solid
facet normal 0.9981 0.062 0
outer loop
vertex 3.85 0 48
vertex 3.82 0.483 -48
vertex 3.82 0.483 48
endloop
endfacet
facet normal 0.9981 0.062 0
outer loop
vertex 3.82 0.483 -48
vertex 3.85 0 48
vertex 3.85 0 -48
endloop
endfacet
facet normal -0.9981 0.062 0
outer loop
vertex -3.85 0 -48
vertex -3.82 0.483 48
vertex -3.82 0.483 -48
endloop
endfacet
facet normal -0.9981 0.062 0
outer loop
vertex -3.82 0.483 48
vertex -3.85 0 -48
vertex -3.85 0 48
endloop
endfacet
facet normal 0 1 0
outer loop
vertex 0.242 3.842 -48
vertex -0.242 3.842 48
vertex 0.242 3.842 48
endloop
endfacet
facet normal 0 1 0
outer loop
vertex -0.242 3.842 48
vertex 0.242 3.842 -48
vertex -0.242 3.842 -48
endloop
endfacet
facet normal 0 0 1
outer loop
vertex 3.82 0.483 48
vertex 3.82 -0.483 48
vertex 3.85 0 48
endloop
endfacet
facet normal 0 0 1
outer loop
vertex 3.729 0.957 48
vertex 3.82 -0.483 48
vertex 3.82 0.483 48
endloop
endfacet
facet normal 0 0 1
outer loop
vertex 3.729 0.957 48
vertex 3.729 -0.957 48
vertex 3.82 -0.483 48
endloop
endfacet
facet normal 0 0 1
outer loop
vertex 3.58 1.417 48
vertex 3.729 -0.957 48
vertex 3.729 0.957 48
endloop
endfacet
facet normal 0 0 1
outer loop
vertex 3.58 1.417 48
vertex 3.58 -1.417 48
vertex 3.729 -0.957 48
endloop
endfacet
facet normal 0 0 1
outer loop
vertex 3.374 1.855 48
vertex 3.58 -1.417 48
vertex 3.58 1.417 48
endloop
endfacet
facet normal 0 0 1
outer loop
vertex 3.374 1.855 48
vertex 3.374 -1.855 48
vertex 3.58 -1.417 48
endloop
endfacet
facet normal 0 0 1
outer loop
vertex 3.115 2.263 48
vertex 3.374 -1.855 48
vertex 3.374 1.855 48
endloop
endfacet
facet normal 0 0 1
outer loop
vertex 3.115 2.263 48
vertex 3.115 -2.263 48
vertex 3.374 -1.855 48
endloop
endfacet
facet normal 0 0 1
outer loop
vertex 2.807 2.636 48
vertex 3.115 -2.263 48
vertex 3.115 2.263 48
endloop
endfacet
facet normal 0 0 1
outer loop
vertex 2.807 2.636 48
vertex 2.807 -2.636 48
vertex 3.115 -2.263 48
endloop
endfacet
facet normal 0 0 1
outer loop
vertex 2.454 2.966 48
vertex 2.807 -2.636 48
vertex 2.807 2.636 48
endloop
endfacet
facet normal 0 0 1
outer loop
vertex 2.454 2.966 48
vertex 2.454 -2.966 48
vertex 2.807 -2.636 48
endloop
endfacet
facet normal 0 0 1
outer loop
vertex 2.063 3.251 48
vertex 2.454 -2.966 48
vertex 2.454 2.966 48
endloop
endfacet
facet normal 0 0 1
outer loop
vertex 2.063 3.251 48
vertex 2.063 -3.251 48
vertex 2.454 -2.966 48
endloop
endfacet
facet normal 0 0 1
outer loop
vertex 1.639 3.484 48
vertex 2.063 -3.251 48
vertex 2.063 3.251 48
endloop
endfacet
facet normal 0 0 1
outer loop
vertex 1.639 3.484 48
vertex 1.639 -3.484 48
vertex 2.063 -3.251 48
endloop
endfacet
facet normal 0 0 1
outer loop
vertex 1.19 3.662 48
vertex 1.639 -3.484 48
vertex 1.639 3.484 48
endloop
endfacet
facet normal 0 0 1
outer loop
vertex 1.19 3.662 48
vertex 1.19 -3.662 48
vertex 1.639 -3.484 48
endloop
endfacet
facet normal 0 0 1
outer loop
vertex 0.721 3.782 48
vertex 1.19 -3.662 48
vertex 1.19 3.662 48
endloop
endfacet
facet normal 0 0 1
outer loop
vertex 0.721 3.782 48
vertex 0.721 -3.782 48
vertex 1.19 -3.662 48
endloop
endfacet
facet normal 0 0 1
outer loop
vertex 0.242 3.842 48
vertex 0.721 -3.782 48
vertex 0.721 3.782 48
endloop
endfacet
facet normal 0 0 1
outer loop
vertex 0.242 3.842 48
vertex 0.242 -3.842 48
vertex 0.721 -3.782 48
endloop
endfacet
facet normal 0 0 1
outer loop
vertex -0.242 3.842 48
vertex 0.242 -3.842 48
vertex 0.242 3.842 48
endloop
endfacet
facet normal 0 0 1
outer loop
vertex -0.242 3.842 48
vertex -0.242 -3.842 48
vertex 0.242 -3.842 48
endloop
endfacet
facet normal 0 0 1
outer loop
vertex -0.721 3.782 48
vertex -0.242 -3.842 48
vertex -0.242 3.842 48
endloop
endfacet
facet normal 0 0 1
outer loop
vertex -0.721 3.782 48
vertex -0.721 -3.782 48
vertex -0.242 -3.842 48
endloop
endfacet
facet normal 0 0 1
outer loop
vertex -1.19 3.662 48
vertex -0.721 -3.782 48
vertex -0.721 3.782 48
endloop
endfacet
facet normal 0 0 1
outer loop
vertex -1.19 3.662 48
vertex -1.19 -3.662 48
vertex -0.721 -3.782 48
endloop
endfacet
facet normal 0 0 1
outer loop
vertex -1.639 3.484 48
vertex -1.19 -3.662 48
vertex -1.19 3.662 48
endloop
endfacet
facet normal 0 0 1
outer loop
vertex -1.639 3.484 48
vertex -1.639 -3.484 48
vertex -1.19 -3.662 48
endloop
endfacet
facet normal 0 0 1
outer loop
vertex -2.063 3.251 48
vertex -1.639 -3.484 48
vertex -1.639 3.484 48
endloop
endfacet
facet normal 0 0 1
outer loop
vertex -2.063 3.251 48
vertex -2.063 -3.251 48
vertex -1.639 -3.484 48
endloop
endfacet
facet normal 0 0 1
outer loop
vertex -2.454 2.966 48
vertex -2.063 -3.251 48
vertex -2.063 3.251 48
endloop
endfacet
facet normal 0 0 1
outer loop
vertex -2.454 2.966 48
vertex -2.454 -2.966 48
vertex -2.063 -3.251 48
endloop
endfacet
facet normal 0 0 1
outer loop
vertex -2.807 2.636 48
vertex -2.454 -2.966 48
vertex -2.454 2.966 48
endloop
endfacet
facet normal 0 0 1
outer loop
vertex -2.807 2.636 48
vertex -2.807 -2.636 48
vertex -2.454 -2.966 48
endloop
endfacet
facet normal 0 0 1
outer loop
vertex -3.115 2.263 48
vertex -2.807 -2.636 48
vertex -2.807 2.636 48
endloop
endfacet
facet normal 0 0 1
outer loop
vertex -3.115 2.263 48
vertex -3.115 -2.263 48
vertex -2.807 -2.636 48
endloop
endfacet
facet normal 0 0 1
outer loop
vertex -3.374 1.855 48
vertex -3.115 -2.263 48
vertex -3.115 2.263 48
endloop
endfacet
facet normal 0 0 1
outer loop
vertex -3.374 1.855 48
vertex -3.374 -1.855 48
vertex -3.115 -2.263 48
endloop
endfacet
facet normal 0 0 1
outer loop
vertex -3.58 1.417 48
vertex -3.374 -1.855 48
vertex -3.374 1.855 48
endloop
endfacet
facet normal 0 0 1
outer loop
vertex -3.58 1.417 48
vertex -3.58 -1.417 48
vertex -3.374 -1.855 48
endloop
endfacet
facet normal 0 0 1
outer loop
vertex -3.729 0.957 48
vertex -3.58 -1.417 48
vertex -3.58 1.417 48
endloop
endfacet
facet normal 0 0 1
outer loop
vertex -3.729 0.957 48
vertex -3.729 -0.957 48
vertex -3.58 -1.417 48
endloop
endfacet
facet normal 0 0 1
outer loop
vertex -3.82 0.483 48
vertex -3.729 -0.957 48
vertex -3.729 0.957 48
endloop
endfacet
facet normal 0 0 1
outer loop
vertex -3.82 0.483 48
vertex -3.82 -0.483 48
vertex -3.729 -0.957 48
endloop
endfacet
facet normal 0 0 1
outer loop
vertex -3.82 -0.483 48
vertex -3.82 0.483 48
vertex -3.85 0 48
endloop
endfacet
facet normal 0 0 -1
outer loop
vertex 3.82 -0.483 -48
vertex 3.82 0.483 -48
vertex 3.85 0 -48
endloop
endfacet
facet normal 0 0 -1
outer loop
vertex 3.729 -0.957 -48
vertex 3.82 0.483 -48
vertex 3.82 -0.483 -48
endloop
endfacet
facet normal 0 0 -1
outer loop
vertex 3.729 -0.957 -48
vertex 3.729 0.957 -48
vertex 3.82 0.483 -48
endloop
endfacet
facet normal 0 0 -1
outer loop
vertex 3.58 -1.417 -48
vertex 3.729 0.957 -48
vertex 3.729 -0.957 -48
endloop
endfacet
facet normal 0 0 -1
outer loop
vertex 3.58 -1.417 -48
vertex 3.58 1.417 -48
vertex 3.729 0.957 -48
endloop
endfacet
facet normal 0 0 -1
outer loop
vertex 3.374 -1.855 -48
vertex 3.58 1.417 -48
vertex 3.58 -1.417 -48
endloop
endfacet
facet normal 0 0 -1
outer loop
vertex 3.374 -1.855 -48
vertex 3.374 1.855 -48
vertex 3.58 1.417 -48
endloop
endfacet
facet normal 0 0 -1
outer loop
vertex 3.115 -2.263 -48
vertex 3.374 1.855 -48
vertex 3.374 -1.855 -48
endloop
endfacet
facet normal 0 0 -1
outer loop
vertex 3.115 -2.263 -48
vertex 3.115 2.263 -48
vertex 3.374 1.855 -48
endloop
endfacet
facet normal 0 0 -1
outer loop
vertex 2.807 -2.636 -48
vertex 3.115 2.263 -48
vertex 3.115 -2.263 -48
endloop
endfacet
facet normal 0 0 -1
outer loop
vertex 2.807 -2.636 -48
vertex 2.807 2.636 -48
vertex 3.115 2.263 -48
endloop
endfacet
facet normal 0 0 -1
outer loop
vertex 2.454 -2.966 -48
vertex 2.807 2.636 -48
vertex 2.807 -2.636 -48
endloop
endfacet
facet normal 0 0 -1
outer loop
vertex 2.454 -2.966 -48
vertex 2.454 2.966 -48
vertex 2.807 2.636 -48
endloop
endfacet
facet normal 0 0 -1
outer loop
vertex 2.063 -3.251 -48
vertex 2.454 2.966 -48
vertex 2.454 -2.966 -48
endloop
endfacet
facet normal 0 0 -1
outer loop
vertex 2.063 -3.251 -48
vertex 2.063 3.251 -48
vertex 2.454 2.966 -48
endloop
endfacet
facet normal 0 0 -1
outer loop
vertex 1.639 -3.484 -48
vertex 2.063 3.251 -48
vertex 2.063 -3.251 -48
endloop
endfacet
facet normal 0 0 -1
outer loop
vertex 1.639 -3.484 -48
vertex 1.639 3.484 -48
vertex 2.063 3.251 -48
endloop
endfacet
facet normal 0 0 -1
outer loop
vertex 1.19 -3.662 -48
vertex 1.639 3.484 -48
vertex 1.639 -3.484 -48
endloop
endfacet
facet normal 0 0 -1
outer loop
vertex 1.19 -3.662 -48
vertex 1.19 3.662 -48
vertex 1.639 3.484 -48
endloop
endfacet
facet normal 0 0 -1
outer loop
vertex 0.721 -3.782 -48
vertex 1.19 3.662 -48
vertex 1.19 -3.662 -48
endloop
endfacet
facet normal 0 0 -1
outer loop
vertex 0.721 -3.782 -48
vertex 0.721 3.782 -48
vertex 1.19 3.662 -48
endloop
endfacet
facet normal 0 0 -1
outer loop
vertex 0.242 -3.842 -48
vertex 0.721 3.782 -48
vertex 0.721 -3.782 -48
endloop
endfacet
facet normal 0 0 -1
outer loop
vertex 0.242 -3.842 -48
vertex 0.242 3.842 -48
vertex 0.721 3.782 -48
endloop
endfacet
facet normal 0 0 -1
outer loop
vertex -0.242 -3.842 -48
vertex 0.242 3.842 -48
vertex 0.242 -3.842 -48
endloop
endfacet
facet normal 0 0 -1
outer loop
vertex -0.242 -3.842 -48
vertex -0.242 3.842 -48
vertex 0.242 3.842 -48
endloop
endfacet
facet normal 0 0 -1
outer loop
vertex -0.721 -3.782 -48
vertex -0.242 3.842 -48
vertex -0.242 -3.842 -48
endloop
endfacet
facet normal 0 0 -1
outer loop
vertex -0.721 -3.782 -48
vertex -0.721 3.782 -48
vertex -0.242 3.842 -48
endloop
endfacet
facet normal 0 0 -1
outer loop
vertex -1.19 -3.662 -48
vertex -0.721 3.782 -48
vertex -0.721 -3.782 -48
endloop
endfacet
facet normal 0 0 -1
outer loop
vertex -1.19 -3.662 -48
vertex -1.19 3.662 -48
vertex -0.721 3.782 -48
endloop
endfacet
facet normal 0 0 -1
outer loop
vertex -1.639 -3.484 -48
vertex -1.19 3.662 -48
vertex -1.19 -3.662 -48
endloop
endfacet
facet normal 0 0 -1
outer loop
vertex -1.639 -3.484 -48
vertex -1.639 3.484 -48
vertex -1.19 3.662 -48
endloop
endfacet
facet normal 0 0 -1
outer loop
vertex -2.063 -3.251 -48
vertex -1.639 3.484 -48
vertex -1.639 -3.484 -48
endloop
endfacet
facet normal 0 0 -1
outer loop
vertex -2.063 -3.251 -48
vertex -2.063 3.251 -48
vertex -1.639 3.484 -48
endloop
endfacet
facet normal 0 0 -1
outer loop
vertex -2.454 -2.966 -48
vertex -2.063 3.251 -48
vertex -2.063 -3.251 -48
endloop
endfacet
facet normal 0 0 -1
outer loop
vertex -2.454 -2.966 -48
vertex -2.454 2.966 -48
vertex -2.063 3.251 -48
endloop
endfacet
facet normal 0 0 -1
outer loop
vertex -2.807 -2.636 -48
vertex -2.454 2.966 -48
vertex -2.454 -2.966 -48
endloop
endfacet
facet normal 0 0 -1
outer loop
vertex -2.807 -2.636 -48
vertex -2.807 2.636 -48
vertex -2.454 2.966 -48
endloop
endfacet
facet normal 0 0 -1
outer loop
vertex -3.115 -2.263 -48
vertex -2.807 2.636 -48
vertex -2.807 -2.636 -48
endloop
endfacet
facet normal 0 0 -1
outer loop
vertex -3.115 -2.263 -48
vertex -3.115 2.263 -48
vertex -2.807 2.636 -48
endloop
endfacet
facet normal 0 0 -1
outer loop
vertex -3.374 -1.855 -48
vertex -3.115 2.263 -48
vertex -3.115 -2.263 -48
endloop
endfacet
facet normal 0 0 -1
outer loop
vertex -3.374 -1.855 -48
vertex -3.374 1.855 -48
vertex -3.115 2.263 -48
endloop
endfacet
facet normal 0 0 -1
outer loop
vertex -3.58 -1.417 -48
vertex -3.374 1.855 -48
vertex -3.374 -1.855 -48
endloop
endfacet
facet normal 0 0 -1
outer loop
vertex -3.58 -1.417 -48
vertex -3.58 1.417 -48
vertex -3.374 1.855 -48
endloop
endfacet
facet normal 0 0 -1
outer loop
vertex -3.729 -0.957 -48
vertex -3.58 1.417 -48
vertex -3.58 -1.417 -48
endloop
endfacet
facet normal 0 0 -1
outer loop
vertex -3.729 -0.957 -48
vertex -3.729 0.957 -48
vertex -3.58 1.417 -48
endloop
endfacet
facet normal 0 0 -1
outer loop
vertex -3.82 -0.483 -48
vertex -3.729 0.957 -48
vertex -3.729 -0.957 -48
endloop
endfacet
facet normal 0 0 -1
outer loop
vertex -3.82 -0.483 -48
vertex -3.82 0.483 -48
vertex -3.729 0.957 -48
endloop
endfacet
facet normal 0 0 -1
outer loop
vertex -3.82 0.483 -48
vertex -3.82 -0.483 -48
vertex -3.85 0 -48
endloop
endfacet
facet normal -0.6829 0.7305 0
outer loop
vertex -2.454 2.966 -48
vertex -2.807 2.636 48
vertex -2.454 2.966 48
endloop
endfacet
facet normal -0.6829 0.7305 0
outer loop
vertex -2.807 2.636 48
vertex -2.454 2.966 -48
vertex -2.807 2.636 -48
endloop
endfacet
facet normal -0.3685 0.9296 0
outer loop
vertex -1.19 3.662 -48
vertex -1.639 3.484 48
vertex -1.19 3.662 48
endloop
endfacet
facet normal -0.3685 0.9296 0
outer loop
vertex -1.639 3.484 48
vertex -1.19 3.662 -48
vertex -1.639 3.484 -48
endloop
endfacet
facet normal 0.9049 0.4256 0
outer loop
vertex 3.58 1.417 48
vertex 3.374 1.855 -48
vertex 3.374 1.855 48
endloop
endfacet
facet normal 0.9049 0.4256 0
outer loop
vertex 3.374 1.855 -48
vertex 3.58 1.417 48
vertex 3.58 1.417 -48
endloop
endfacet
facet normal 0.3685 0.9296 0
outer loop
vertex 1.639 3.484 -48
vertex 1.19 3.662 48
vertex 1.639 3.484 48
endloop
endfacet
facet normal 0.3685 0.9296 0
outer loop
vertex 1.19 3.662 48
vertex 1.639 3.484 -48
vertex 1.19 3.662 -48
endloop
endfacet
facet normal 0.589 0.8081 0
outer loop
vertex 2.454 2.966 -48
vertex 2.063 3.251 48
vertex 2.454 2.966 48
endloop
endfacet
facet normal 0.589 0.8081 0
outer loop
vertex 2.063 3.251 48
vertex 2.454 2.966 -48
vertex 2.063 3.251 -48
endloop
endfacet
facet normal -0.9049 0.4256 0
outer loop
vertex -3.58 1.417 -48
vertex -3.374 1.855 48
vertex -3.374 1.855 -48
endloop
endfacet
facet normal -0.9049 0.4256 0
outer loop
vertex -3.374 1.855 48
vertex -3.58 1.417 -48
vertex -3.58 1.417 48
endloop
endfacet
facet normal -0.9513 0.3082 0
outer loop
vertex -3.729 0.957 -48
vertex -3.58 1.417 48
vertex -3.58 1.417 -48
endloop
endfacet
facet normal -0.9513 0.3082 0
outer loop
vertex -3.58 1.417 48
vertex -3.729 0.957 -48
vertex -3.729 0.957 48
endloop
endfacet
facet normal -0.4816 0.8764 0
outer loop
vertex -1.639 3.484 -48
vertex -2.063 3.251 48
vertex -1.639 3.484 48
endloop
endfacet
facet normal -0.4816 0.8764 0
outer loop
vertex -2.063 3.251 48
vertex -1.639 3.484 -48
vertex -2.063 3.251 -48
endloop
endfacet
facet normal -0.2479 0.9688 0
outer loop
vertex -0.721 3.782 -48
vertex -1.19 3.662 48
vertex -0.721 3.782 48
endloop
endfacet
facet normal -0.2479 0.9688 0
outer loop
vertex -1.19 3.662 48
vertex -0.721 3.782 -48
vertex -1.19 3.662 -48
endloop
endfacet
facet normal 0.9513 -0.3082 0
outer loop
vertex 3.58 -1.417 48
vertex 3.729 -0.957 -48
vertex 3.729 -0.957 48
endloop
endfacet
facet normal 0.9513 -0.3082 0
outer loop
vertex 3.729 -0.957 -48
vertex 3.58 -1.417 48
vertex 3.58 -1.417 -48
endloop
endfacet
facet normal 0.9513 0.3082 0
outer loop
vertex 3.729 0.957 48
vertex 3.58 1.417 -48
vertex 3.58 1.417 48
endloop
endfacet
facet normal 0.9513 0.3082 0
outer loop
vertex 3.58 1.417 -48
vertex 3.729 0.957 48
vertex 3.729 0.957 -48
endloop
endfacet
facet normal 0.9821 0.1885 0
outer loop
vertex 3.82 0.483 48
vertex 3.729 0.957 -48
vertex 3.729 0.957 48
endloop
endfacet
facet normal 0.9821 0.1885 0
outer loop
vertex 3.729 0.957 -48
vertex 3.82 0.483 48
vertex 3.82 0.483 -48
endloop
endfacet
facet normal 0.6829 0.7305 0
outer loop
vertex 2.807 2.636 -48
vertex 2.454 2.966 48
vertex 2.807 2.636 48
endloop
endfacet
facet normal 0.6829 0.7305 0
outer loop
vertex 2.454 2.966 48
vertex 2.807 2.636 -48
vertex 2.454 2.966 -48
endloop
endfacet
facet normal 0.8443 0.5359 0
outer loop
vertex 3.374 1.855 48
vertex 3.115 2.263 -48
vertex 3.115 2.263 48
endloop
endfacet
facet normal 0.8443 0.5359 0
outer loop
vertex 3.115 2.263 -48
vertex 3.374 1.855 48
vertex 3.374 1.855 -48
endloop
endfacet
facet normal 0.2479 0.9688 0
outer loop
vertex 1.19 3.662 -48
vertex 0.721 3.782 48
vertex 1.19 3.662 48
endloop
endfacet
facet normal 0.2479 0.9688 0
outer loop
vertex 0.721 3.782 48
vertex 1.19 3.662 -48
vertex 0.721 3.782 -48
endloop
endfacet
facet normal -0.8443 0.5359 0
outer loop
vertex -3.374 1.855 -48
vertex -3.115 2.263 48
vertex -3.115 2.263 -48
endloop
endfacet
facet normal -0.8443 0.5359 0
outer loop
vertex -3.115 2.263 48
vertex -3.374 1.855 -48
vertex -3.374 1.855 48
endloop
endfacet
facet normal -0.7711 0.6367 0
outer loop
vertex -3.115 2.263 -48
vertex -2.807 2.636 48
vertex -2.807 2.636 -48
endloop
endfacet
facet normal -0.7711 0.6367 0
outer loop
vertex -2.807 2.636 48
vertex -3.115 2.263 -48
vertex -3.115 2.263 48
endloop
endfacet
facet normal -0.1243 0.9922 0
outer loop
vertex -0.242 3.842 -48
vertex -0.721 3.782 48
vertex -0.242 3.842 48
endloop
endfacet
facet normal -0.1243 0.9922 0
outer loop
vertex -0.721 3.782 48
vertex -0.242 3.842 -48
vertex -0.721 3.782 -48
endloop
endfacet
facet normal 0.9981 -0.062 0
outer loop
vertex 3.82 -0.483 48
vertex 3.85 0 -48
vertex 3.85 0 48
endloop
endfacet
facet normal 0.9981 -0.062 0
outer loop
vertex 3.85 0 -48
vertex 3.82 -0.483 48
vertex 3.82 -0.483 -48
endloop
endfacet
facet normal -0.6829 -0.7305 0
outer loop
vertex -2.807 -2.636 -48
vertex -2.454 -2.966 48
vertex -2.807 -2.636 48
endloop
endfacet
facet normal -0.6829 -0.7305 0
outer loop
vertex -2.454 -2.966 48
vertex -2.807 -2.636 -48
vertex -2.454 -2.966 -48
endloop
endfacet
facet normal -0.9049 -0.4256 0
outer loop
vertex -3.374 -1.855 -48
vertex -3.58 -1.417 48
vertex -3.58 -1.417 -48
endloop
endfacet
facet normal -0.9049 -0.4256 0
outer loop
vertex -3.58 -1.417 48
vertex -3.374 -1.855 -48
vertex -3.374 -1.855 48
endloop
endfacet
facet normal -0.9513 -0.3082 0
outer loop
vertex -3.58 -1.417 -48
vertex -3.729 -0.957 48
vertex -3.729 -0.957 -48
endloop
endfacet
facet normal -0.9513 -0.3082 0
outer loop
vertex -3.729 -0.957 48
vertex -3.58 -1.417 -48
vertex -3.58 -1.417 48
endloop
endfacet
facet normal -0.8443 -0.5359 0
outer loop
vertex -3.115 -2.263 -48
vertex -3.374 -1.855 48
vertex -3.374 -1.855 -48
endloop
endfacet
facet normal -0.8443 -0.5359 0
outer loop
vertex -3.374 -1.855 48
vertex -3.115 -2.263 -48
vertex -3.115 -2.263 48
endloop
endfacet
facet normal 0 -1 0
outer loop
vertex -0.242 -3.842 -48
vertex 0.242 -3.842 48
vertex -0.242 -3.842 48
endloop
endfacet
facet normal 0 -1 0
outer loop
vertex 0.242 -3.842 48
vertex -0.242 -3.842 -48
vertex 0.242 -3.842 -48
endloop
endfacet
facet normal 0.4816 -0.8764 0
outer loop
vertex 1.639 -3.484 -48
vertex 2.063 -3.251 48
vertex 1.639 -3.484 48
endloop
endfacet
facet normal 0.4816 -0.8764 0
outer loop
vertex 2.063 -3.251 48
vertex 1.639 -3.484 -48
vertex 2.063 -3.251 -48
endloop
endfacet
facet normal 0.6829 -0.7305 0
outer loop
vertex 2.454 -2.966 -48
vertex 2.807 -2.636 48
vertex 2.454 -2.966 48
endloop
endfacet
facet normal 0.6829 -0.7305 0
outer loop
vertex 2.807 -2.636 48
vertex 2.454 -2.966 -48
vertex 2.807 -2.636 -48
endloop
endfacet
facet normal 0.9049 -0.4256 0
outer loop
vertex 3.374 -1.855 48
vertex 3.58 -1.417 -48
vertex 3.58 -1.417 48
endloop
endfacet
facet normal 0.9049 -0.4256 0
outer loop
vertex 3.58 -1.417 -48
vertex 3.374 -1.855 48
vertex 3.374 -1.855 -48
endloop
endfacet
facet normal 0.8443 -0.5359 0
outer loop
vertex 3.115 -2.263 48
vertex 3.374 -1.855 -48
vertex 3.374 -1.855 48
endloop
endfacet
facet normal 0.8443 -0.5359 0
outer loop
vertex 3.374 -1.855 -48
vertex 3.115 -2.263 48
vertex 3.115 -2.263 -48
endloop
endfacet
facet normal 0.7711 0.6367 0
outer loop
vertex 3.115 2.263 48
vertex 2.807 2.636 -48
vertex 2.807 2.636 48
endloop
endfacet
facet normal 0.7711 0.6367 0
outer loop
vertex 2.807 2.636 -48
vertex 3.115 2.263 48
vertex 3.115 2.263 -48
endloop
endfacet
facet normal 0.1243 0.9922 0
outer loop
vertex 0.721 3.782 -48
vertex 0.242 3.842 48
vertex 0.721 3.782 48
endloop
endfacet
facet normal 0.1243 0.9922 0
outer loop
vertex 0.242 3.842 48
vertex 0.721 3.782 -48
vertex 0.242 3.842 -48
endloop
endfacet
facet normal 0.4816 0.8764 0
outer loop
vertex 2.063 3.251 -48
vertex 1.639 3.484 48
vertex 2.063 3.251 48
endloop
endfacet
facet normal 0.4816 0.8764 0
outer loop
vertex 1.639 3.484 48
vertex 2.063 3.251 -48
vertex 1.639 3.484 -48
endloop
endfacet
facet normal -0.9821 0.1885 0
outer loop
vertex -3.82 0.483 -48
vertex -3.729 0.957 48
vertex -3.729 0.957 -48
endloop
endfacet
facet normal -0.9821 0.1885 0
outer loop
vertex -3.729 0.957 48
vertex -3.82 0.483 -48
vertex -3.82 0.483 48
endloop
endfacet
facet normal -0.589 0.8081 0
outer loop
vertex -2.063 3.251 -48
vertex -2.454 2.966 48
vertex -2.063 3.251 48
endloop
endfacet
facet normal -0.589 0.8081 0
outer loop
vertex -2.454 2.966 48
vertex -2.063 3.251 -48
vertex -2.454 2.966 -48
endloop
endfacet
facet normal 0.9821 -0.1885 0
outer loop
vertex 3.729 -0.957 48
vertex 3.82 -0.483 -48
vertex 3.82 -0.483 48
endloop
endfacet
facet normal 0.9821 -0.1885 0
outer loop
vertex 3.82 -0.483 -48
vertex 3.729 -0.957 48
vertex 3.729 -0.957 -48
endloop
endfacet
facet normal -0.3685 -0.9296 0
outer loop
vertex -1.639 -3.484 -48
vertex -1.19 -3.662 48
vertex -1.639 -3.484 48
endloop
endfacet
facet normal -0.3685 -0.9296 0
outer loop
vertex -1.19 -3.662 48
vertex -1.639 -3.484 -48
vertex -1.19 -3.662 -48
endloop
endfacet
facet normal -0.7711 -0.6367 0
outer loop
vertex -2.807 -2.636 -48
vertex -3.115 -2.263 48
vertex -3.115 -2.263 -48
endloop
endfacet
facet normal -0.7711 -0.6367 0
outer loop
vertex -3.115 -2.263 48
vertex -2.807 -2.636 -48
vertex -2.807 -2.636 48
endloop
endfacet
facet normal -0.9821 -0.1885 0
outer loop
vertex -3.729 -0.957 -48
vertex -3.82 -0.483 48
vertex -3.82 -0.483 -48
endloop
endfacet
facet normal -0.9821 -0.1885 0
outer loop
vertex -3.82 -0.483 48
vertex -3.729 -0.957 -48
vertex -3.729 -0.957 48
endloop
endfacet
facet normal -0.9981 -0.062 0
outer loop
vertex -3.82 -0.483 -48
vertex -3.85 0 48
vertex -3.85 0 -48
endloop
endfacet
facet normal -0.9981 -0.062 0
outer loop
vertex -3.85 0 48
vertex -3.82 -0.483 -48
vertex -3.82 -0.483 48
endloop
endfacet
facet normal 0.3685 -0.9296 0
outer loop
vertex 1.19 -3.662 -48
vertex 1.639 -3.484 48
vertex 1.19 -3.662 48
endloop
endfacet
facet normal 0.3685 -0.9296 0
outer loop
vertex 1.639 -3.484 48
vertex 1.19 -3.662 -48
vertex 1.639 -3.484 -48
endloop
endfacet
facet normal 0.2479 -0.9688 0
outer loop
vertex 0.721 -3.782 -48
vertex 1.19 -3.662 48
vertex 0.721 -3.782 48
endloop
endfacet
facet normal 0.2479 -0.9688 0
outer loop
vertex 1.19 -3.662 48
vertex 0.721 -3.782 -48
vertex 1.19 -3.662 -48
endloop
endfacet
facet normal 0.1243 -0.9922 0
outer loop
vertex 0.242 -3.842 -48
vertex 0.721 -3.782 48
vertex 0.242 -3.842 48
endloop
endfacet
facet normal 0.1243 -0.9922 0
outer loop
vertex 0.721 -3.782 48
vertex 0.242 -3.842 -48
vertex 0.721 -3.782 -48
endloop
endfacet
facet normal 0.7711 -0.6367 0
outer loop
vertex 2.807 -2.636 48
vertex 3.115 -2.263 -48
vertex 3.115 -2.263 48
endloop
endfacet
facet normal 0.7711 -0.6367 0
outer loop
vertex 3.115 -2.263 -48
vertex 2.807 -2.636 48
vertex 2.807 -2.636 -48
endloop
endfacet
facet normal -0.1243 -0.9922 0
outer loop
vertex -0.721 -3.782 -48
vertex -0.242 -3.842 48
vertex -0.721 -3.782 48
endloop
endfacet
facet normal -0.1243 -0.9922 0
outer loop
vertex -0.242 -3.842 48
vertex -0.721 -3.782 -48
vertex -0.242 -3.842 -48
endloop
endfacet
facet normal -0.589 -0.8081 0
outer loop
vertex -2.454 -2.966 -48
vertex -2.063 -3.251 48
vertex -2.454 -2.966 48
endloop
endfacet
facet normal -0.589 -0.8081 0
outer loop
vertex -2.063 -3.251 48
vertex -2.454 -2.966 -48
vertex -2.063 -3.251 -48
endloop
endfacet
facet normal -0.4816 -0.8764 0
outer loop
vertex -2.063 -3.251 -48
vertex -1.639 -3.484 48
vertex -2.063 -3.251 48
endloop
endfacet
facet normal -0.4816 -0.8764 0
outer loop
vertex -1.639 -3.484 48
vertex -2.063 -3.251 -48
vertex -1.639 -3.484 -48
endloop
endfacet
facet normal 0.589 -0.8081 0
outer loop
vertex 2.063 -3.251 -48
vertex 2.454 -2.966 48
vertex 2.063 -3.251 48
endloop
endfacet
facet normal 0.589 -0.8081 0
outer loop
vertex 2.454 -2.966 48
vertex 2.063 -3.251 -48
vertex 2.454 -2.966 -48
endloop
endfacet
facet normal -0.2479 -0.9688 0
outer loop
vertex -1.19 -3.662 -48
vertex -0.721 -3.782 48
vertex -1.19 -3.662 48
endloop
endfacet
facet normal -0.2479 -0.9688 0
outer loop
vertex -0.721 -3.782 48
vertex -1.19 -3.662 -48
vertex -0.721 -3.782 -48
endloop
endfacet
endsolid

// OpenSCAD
$fn = 50;


difference() {
	union() {
		translate(v = [0, 0, -48.0000000000]) {
			cylinder(h = 96, r = 3.8500000000);
		}
	}
	union() {
		translate(v = [0, 0, -100.0000000000]) {
			cylinder(h = 200, r = 0);
		}
	}
}
